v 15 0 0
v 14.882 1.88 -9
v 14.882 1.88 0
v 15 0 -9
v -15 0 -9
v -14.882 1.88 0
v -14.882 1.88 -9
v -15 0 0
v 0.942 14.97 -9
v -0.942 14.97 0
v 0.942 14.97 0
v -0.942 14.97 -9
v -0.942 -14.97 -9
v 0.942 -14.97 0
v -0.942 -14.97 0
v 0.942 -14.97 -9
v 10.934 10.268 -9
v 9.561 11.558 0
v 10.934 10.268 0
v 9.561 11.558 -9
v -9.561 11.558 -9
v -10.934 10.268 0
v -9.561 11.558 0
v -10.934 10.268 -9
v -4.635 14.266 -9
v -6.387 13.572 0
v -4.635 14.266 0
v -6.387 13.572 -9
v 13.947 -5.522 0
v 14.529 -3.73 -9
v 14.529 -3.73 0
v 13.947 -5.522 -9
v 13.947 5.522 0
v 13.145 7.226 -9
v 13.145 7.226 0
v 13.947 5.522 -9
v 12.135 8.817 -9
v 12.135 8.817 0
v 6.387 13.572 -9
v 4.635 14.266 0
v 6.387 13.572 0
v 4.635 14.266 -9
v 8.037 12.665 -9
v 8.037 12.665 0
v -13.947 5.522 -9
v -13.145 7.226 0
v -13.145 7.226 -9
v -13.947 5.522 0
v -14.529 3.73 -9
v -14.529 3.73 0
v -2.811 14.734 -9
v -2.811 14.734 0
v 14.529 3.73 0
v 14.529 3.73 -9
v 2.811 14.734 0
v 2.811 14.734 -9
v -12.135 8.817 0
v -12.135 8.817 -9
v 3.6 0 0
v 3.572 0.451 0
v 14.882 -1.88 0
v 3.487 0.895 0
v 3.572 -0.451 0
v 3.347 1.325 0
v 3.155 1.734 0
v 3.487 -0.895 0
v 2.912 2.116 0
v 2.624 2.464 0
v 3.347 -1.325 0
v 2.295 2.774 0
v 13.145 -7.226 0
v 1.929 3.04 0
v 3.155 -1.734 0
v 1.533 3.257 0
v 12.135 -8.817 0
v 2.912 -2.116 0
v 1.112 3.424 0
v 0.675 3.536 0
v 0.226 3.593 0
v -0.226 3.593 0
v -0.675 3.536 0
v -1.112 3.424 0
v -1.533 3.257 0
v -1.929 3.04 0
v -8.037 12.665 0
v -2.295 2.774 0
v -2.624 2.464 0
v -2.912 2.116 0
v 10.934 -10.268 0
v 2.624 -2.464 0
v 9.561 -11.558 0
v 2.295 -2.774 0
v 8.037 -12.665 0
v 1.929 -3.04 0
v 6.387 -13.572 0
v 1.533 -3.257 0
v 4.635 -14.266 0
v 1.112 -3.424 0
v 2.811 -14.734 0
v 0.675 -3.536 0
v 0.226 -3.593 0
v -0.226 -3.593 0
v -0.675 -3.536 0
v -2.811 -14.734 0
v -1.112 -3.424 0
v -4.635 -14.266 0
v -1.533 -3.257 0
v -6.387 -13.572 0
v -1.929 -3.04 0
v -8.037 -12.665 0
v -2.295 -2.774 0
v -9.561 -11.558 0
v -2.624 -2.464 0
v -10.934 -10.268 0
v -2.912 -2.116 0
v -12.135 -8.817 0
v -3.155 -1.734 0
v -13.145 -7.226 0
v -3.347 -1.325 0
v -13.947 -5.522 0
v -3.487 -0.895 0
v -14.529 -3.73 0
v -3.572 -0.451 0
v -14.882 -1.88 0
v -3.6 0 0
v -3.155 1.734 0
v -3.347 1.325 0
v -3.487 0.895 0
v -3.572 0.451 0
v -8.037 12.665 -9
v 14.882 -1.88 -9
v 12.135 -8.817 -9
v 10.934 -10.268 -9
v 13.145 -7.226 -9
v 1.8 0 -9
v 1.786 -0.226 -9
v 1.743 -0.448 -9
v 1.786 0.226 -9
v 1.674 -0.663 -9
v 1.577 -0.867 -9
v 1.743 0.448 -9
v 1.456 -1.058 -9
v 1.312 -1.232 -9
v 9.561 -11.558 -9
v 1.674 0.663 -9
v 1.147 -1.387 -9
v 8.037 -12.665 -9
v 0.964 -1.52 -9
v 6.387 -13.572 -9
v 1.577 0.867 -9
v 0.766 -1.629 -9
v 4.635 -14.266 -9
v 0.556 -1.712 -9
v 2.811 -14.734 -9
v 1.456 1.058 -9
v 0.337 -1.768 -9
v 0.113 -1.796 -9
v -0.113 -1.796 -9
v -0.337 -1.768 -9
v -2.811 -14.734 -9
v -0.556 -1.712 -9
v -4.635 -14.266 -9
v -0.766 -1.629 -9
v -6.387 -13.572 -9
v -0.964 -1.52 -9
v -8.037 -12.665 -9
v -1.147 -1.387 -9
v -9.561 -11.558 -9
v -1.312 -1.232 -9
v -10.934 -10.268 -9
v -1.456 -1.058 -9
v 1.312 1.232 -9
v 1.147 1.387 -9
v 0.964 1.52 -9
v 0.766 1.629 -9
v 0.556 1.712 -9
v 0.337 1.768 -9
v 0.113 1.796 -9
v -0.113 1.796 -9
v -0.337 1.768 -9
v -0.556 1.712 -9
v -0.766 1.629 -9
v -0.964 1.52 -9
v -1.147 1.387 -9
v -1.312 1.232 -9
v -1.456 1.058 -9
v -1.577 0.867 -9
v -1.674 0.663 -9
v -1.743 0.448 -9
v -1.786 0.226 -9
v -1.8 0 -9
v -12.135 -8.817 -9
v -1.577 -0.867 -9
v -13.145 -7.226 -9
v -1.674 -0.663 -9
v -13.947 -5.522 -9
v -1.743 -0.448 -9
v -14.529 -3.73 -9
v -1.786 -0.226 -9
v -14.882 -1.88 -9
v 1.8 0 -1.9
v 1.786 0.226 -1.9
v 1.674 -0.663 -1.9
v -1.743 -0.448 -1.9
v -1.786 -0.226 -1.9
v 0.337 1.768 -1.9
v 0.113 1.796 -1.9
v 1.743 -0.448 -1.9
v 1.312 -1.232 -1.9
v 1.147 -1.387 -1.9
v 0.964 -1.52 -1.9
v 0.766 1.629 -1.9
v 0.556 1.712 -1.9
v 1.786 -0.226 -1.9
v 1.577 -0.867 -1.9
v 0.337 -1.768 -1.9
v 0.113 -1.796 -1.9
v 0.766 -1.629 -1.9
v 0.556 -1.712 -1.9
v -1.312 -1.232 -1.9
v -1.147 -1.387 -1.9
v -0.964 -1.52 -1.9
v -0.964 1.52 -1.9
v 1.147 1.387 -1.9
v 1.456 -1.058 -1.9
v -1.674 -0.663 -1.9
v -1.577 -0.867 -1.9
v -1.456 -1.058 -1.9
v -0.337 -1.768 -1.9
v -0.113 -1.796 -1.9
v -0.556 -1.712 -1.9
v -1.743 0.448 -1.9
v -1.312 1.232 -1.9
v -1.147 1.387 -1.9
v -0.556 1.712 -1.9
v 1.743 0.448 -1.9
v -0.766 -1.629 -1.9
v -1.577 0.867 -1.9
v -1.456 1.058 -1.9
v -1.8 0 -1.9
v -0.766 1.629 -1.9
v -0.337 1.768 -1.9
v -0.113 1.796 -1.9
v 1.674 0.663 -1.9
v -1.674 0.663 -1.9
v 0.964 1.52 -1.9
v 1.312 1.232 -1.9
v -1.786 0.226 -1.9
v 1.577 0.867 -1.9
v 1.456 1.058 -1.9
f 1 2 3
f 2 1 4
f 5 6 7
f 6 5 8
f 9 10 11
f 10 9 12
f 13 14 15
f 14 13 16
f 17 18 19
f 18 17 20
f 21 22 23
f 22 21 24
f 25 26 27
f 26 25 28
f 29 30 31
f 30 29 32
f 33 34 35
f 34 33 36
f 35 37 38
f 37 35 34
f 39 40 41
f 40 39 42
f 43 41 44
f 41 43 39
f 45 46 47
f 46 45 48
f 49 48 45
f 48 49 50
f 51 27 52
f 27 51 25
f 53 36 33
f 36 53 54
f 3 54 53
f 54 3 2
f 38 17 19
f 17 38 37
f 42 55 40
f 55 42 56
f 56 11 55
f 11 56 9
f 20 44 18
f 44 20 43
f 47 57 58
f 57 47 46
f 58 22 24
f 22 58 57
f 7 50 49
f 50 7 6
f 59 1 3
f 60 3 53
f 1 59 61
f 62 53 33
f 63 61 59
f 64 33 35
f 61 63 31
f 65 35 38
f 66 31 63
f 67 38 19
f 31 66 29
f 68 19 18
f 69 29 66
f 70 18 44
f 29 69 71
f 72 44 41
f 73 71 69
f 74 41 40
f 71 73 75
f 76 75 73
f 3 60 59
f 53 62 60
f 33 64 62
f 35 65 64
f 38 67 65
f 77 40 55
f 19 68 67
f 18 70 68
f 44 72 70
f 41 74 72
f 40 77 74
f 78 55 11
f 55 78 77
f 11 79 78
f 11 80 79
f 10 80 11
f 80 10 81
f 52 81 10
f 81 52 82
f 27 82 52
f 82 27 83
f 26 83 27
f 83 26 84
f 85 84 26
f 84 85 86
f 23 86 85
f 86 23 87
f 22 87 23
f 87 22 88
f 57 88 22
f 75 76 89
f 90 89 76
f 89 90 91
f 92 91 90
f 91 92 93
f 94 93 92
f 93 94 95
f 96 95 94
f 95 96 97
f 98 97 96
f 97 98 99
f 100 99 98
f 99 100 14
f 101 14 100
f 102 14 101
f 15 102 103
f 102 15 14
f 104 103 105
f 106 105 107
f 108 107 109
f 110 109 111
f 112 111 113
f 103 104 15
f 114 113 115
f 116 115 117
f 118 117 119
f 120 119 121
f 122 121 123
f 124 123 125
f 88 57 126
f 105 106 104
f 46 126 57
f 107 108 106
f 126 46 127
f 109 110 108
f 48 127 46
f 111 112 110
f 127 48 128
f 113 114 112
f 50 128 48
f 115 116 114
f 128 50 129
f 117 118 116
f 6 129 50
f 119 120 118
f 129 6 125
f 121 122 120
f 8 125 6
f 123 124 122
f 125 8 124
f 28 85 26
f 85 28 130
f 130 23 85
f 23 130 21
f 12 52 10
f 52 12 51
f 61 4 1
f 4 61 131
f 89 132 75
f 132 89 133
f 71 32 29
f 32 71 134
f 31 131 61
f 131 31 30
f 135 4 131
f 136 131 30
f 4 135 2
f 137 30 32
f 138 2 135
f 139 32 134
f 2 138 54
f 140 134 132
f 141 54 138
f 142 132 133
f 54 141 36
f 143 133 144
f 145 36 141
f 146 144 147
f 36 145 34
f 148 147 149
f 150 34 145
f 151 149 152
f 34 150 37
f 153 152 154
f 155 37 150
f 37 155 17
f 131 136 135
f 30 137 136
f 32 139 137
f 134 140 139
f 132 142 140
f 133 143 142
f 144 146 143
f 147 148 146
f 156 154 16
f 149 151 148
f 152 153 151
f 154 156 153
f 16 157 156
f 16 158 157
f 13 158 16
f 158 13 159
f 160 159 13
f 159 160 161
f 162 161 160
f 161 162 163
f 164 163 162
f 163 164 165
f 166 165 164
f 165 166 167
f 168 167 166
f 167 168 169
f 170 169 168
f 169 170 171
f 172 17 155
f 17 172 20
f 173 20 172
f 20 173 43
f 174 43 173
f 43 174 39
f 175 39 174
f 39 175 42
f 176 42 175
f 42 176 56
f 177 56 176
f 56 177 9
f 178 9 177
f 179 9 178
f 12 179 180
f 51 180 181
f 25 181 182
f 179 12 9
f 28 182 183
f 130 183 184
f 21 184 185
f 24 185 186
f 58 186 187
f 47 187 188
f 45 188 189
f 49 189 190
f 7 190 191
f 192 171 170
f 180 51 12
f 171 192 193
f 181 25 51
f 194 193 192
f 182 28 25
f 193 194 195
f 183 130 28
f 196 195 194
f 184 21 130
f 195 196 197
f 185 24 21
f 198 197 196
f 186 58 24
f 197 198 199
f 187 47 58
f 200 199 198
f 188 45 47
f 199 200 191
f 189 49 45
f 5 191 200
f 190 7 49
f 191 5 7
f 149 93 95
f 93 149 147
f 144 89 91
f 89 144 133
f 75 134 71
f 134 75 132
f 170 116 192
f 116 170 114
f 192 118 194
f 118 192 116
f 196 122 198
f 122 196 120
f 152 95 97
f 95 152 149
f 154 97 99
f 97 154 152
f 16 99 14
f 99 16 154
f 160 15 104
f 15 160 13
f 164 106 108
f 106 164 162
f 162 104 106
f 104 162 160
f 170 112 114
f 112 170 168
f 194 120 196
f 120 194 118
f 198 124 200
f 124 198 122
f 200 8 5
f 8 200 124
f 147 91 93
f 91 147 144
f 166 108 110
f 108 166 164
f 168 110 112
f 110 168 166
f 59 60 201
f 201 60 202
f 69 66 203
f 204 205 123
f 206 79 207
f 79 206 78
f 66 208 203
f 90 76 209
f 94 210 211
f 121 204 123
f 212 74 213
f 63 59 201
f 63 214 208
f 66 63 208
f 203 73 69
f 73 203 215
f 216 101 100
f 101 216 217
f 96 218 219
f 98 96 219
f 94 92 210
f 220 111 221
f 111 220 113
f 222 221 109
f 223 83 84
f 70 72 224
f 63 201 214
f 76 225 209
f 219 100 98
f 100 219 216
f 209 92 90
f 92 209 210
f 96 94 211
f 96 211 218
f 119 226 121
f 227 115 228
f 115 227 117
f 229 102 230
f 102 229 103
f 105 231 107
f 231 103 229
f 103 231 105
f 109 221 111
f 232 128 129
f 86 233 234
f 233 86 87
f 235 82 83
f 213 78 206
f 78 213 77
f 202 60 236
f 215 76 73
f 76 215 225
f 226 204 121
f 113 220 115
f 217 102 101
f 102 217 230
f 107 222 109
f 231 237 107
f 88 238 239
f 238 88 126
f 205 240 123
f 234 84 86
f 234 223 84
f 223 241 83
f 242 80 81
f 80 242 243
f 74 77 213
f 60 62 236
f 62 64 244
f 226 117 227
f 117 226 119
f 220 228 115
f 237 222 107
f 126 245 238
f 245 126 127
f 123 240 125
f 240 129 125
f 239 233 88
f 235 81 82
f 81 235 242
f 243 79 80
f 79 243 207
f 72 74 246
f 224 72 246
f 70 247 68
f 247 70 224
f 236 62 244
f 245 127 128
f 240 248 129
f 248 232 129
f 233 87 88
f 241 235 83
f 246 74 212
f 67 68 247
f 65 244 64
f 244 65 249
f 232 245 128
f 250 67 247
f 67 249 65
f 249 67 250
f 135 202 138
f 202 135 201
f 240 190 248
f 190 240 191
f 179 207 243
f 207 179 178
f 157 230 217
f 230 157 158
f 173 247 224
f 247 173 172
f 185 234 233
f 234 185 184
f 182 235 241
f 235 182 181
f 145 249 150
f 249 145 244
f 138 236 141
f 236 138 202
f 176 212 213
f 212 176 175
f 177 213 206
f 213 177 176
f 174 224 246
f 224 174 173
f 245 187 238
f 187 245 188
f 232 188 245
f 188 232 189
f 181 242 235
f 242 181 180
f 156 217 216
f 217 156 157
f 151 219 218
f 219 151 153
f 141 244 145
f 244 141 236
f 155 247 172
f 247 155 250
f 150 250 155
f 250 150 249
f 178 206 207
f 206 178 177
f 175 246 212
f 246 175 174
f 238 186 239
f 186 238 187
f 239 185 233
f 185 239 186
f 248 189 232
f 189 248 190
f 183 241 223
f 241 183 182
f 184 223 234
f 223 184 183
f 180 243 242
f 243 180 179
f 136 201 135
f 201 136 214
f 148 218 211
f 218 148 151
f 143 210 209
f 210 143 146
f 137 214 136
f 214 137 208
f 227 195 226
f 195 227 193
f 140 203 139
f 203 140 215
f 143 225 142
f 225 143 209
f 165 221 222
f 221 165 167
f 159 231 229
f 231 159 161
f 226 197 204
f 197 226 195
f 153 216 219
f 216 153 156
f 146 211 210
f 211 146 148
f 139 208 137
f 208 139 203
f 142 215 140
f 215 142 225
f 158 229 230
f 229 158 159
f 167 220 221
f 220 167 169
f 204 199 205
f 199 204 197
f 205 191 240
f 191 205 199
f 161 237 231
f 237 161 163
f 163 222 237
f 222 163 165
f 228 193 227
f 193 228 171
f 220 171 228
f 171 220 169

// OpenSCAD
$fn = 50;


difference() {
	union() {
		translate(v = [0, 0, -9.0000000000]) {
			cylinder(h = 9, r = 15.0000000000);
		}
		translate(v = [0, 0, -9.0000000000]) {
			cylinder(h = 9, r = 2.8750000000);
		}
	}
	union() {
		translate(v = [0, 0, 0]) {
			rotate(a = [0, 0, 0]) {
				difference() {
					union() {
						#translate(v = [0, 0, -9.0000000000]) {
							cylinder(h = 9, r = 1.5000000000);
						}
						#translate(v = [0, 0, -1.9000000000]) {
							cylinder(h = 1.9000000000, r1 = 1.8000000000, r2 = 3.6000000000);
						}
						#translate(v = [0, 0, -9.0000000000]) {
							cylinder(h = 9, r = 1.8000000000);
						}
						#translate(v = [0, 0, -9.0000000000]) {
							cylinder(h = 9, r = 1.5000000000);
						}
					}
					union();
				}
			}
		}
	}
}
